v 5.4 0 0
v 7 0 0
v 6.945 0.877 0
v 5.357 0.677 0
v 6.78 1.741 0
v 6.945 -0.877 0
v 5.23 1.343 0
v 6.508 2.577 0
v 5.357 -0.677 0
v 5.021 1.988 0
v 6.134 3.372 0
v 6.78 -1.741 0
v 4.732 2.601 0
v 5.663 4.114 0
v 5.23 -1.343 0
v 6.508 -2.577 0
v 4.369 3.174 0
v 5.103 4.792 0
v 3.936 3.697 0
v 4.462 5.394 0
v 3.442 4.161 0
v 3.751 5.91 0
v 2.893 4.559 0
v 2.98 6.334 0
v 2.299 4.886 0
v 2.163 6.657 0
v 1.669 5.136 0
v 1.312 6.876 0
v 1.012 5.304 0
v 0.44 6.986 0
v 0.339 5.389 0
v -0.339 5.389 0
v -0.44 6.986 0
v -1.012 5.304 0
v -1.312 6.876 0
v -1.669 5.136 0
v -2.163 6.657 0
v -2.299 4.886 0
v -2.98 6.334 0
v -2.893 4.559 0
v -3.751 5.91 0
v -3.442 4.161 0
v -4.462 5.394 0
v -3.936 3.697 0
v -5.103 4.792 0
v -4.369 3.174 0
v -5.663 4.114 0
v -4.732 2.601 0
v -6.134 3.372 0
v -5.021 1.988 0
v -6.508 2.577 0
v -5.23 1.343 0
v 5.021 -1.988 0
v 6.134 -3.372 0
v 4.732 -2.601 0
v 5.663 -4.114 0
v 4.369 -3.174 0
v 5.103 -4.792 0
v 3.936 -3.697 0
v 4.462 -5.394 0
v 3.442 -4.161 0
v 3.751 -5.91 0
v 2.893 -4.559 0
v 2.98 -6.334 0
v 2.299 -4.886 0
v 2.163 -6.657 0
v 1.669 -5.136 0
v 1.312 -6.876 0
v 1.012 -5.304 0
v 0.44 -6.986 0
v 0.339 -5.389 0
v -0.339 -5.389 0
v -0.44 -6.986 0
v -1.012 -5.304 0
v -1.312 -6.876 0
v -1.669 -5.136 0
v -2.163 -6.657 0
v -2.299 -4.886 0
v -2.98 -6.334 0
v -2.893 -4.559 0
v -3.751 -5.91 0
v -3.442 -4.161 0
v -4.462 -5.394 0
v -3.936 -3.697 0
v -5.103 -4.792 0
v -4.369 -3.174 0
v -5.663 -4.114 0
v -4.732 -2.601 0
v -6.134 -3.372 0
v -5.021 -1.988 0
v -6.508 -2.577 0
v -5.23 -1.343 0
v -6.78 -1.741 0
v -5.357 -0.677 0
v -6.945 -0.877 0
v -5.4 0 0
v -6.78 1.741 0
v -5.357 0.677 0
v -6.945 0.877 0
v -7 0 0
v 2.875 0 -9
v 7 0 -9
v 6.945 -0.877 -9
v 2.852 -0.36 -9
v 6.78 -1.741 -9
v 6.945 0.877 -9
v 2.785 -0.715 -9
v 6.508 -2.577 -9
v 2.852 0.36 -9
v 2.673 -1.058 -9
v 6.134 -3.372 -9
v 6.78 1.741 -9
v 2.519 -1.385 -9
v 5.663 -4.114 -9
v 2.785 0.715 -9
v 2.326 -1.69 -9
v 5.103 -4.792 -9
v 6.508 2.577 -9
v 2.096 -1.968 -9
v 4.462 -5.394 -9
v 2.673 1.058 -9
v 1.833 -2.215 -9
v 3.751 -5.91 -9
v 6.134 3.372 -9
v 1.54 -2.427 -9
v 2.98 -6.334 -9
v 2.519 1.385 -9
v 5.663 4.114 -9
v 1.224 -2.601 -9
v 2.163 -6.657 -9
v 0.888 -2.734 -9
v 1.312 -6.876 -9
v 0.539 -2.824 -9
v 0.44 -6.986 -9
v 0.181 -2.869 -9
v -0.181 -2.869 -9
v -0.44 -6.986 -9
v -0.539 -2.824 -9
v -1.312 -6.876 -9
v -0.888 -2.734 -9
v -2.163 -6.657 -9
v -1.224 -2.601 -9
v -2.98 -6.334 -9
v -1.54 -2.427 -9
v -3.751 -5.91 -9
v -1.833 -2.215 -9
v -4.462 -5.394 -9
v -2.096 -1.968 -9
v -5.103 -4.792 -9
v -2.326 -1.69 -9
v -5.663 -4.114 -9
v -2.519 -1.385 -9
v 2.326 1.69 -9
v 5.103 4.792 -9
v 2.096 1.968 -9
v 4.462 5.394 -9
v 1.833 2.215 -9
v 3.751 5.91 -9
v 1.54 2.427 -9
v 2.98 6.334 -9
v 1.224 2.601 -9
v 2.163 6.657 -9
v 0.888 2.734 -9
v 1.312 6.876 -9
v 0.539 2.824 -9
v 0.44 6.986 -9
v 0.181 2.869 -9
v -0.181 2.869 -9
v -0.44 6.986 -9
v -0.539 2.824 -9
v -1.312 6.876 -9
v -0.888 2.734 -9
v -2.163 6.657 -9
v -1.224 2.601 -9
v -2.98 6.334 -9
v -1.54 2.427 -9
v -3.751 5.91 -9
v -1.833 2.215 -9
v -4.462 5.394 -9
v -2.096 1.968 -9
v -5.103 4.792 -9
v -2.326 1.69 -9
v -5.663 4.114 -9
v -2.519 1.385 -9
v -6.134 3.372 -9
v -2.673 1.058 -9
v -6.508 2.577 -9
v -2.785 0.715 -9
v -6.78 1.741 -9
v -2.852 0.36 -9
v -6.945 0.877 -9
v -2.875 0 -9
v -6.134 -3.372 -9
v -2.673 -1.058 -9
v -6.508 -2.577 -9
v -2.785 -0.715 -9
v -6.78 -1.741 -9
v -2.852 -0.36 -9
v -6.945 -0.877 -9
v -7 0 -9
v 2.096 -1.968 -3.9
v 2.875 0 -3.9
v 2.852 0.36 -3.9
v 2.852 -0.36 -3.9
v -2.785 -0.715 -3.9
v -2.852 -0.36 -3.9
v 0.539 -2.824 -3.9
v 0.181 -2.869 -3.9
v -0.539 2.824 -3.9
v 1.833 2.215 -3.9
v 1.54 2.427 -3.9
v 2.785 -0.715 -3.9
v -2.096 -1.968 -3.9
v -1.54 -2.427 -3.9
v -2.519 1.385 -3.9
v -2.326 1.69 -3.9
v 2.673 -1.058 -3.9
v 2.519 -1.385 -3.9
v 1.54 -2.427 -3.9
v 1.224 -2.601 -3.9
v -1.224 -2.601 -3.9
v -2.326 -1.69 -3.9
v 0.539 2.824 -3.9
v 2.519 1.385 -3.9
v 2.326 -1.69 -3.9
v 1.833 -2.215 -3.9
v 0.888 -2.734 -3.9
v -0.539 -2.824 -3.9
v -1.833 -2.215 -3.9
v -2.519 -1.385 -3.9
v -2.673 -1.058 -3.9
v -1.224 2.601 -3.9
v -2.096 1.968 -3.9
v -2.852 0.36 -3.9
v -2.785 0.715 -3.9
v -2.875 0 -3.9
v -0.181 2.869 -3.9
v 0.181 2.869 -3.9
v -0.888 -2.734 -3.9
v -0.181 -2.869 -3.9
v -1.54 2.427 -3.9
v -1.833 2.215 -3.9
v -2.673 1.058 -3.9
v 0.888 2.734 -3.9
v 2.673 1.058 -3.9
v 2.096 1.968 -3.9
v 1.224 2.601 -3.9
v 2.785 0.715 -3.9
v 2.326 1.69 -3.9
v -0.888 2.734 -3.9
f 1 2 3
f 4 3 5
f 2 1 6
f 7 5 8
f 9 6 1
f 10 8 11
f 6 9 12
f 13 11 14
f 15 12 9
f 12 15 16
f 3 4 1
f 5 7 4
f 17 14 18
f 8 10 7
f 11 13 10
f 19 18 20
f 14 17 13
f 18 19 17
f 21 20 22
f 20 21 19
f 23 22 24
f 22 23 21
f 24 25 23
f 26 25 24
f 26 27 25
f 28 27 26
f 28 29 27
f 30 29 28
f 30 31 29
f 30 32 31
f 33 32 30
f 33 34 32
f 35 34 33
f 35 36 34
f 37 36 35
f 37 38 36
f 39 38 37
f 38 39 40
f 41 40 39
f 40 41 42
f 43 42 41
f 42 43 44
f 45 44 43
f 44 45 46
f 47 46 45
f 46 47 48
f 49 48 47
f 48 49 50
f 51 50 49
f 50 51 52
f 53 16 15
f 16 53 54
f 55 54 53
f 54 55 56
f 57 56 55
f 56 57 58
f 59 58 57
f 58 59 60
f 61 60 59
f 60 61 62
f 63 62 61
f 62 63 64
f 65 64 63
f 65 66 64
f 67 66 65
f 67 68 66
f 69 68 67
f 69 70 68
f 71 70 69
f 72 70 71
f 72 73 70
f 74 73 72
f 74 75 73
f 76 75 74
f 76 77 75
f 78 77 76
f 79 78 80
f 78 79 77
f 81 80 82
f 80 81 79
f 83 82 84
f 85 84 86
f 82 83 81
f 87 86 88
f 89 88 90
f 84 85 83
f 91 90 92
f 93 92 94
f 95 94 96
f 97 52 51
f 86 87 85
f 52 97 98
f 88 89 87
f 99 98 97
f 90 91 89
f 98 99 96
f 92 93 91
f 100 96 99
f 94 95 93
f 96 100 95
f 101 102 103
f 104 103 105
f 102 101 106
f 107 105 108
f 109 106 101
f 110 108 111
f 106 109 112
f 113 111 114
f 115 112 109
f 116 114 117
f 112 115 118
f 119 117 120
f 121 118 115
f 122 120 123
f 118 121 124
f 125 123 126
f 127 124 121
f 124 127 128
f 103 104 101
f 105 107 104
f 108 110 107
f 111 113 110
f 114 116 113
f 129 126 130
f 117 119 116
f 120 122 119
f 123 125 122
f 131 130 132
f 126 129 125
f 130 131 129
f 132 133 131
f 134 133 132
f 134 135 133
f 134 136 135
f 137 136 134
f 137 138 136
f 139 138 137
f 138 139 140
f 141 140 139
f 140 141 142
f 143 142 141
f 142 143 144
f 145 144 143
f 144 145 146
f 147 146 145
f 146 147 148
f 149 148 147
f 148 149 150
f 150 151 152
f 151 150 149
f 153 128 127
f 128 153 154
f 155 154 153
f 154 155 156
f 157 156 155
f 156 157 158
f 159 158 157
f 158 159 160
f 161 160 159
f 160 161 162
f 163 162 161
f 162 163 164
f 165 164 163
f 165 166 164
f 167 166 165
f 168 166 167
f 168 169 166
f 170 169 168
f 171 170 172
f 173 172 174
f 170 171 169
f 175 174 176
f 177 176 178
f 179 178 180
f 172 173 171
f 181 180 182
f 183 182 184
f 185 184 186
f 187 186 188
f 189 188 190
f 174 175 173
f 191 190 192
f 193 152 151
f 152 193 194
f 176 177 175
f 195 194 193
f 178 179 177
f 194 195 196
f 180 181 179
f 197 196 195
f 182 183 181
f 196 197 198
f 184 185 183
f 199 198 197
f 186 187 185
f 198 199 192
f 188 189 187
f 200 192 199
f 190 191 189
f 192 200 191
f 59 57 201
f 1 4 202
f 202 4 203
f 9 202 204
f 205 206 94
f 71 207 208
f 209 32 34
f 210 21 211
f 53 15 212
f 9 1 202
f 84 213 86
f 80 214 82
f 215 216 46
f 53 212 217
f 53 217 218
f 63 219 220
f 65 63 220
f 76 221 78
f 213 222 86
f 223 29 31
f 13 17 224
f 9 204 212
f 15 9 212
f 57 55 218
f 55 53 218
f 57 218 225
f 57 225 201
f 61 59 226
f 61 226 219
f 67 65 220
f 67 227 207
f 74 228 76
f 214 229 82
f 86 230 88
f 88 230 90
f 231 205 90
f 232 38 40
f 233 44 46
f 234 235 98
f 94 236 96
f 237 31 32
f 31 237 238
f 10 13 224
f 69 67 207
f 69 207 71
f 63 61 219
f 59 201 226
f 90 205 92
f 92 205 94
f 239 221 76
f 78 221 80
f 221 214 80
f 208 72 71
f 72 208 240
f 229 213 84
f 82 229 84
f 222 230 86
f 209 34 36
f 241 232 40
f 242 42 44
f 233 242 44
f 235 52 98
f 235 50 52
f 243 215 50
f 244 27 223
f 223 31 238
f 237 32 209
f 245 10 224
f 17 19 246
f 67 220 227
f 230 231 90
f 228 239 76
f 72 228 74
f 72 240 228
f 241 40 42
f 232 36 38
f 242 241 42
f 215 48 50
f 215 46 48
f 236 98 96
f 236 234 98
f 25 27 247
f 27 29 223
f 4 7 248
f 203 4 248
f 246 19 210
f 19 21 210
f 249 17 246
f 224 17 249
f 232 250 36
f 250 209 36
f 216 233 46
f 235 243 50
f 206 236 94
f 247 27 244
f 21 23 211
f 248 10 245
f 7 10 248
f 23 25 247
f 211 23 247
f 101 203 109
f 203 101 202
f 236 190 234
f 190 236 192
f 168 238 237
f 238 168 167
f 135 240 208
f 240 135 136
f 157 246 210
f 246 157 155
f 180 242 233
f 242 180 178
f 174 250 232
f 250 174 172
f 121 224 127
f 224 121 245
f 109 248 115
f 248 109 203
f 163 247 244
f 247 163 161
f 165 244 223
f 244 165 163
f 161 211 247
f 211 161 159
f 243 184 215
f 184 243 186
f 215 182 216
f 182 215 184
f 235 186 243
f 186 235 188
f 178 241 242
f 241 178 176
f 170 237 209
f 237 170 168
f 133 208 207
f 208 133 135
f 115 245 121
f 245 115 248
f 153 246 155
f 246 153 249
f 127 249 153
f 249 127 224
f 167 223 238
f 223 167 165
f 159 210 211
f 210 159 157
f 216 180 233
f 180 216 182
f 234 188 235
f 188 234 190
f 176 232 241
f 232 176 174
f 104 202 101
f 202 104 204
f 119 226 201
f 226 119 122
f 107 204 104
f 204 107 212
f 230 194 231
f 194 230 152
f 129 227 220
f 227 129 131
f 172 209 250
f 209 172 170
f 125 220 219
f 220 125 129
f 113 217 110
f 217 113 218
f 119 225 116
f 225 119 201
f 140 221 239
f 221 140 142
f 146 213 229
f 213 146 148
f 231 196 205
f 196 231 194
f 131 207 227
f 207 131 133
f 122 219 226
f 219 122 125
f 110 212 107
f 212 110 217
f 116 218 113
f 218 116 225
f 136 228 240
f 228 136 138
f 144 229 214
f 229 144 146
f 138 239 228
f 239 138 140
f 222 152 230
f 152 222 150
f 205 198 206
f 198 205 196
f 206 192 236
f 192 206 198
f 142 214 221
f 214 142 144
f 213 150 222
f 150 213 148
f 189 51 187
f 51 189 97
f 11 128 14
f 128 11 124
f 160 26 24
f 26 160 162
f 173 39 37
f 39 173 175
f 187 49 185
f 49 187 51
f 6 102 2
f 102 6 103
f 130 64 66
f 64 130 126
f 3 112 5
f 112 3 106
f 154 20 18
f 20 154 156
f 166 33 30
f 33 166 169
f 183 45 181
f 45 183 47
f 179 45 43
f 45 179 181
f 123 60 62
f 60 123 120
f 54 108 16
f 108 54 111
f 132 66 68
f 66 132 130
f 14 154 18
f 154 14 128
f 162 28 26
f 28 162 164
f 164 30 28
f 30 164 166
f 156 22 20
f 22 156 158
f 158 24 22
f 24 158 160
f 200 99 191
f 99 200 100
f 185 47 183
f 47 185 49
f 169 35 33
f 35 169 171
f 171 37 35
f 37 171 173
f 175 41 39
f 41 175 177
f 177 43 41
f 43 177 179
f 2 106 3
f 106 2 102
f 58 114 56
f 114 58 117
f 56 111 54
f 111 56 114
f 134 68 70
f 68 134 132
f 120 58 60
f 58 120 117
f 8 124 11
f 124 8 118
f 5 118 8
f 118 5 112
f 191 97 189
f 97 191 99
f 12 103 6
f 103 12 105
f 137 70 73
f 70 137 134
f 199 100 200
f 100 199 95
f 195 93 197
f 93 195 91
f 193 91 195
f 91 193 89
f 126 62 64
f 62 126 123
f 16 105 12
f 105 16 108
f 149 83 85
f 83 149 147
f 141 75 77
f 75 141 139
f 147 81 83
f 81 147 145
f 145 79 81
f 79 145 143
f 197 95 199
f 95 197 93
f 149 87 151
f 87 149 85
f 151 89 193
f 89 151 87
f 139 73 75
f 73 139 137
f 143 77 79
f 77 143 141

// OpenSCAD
$fn = 50;


difference() {
	union() {
		translate(v = [0, 0, -9.0000000000]) {
			cylinder(h = 9, r = 7.0000000000);
		}
		cylinder(h = 0, r = 16.0000000000);
	}
	union() {
		translate(v = [0, 0, 0]) {
			rotate(a = [0, 0, 0]) {
				difference() {
					union() {
						#translate(v = [0, 0, -9.0000000000]) {
							cylinder(h = 9, r = 2.6000000000);
						}
						#translate(v = [0, 0, -3.9000000000]) {
							cylinder(h = 3.9000000000, r1 = 2.8750000000, r2 = 5.4000000000);
						}
						#translate(v = [0, 0, -9.0000000000]) {
							cylinder(h = 9, r = 2.8750000000);
						}
						#translate(v = [0, 0, -9.0000000000]) {
							cylinder(h = 9, r = 2.6000000000);
						}
					}
					union();
				}
			}
		}
	}
}
